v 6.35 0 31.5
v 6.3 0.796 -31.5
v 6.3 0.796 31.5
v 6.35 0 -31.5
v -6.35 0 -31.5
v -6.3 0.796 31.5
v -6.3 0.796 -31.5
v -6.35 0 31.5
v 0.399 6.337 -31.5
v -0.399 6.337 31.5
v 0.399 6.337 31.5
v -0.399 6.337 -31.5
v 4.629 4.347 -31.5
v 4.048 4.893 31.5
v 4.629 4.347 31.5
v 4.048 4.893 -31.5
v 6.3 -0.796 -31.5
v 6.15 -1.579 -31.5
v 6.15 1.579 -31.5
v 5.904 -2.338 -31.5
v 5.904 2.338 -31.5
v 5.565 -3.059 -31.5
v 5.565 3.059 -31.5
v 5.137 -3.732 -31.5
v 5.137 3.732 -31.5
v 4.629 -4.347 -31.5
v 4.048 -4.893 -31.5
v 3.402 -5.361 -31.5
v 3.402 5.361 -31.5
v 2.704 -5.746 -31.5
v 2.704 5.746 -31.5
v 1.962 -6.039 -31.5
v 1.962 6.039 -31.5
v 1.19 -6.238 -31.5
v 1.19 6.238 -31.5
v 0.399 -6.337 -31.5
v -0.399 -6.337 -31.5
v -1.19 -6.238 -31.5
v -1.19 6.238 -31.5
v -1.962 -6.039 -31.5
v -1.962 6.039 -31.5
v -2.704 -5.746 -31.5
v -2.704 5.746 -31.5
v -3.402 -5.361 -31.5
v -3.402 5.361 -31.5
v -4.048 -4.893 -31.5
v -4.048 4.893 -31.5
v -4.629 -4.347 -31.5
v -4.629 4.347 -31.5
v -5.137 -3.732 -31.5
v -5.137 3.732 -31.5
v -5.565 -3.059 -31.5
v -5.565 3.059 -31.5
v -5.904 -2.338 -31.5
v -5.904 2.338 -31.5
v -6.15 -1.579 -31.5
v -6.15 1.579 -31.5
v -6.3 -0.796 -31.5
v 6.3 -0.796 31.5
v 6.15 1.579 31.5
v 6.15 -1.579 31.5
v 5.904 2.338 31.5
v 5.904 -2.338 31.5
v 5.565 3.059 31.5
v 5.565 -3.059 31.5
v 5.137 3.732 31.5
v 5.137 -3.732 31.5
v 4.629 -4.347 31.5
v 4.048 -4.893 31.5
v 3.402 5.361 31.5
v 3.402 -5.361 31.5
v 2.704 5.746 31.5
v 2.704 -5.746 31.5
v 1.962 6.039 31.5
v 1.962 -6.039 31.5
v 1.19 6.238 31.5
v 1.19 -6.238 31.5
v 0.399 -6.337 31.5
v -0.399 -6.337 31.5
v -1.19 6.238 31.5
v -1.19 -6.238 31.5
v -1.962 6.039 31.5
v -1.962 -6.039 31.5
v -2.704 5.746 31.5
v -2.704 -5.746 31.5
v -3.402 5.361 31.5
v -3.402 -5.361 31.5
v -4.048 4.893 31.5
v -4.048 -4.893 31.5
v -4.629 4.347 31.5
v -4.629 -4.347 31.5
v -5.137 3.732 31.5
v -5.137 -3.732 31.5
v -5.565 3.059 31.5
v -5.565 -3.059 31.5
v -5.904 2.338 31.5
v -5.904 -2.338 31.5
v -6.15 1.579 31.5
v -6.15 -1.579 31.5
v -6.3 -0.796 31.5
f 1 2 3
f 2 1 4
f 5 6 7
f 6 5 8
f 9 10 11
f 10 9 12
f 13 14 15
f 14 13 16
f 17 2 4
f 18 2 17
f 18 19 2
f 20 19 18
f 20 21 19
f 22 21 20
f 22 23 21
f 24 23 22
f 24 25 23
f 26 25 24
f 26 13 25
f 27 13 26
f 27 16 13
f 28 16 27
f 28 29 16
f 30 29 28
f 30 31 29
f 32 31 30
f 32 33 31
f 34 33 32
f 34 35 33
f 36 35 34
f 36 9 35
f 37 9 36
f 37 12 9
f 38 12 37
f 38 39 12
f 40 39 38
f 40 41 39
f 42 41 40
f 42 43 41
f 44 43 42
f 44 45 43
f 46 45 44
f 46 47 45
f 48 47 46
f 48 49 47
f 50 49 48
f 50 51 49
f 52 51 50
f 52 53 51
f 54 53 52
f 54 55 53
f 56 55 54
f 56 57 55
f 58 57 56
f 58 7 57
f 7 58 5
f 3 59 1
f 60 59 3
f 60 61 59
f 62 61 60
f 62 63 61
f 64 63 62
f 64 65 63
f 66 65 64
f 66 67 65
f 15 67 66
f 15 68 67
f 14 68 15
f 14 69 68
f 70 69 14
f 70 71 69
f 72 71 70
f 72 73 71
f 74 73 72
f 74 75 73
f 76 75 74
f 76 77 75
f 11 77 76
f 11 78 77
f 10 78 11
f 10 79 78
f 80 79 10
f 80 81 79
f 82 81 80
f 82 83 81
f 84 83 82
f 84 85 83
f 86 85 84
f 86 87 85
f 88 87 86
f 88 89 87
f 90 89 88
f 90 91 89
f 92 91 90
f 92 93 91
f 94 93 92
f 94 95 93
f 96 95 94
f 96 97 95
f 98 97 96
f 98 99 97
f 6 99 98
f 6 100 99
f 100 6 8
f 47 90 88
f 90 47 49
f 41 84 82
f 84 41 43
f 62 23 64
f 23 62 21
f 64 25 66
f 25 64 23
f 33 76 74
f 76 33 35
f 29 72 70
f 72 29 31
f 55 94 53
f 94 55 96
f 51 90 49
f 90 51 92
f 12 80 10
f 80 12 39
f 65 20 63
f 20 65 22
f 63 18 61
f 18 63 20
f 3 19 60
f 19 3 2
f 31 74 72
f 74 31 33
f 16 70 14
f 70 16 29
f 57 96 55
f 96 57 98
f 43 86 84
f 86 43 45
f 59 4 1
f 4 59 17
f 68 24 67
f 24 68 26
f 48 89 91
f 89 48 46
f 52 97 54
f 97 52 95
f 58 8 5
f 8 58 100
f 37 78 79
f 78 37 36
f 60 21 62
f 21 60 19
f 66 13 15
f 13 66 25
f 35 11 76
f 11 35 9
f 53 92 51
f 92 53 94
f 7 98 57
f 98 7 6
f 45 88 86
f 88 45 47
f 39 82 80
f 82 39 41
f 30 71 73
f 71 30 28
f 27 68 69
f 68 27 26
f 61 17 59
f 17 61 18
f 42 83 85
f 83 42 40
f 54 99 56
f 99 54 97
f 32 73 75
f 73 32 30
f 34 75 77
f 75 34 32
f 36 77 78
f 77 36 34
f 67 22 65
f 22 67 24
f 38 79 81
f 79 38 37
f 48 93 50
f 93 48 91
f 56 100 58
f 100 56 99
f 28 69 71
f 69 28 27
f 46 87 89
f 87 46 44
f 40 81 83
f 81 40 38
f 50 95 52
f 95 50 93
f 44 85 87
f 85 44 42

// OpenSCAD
$fn = 50;


difference() {
	union() {
		translate(v = [0, 0, -31.5000000000]) {
			cylinder(h = 63, r = 6.3500000000);
		}
	}
	union() {
		translate(v = [0, 0, -100.0000000000]) {
			cylinder(h = 200, r = 0);
		}
	}
}
